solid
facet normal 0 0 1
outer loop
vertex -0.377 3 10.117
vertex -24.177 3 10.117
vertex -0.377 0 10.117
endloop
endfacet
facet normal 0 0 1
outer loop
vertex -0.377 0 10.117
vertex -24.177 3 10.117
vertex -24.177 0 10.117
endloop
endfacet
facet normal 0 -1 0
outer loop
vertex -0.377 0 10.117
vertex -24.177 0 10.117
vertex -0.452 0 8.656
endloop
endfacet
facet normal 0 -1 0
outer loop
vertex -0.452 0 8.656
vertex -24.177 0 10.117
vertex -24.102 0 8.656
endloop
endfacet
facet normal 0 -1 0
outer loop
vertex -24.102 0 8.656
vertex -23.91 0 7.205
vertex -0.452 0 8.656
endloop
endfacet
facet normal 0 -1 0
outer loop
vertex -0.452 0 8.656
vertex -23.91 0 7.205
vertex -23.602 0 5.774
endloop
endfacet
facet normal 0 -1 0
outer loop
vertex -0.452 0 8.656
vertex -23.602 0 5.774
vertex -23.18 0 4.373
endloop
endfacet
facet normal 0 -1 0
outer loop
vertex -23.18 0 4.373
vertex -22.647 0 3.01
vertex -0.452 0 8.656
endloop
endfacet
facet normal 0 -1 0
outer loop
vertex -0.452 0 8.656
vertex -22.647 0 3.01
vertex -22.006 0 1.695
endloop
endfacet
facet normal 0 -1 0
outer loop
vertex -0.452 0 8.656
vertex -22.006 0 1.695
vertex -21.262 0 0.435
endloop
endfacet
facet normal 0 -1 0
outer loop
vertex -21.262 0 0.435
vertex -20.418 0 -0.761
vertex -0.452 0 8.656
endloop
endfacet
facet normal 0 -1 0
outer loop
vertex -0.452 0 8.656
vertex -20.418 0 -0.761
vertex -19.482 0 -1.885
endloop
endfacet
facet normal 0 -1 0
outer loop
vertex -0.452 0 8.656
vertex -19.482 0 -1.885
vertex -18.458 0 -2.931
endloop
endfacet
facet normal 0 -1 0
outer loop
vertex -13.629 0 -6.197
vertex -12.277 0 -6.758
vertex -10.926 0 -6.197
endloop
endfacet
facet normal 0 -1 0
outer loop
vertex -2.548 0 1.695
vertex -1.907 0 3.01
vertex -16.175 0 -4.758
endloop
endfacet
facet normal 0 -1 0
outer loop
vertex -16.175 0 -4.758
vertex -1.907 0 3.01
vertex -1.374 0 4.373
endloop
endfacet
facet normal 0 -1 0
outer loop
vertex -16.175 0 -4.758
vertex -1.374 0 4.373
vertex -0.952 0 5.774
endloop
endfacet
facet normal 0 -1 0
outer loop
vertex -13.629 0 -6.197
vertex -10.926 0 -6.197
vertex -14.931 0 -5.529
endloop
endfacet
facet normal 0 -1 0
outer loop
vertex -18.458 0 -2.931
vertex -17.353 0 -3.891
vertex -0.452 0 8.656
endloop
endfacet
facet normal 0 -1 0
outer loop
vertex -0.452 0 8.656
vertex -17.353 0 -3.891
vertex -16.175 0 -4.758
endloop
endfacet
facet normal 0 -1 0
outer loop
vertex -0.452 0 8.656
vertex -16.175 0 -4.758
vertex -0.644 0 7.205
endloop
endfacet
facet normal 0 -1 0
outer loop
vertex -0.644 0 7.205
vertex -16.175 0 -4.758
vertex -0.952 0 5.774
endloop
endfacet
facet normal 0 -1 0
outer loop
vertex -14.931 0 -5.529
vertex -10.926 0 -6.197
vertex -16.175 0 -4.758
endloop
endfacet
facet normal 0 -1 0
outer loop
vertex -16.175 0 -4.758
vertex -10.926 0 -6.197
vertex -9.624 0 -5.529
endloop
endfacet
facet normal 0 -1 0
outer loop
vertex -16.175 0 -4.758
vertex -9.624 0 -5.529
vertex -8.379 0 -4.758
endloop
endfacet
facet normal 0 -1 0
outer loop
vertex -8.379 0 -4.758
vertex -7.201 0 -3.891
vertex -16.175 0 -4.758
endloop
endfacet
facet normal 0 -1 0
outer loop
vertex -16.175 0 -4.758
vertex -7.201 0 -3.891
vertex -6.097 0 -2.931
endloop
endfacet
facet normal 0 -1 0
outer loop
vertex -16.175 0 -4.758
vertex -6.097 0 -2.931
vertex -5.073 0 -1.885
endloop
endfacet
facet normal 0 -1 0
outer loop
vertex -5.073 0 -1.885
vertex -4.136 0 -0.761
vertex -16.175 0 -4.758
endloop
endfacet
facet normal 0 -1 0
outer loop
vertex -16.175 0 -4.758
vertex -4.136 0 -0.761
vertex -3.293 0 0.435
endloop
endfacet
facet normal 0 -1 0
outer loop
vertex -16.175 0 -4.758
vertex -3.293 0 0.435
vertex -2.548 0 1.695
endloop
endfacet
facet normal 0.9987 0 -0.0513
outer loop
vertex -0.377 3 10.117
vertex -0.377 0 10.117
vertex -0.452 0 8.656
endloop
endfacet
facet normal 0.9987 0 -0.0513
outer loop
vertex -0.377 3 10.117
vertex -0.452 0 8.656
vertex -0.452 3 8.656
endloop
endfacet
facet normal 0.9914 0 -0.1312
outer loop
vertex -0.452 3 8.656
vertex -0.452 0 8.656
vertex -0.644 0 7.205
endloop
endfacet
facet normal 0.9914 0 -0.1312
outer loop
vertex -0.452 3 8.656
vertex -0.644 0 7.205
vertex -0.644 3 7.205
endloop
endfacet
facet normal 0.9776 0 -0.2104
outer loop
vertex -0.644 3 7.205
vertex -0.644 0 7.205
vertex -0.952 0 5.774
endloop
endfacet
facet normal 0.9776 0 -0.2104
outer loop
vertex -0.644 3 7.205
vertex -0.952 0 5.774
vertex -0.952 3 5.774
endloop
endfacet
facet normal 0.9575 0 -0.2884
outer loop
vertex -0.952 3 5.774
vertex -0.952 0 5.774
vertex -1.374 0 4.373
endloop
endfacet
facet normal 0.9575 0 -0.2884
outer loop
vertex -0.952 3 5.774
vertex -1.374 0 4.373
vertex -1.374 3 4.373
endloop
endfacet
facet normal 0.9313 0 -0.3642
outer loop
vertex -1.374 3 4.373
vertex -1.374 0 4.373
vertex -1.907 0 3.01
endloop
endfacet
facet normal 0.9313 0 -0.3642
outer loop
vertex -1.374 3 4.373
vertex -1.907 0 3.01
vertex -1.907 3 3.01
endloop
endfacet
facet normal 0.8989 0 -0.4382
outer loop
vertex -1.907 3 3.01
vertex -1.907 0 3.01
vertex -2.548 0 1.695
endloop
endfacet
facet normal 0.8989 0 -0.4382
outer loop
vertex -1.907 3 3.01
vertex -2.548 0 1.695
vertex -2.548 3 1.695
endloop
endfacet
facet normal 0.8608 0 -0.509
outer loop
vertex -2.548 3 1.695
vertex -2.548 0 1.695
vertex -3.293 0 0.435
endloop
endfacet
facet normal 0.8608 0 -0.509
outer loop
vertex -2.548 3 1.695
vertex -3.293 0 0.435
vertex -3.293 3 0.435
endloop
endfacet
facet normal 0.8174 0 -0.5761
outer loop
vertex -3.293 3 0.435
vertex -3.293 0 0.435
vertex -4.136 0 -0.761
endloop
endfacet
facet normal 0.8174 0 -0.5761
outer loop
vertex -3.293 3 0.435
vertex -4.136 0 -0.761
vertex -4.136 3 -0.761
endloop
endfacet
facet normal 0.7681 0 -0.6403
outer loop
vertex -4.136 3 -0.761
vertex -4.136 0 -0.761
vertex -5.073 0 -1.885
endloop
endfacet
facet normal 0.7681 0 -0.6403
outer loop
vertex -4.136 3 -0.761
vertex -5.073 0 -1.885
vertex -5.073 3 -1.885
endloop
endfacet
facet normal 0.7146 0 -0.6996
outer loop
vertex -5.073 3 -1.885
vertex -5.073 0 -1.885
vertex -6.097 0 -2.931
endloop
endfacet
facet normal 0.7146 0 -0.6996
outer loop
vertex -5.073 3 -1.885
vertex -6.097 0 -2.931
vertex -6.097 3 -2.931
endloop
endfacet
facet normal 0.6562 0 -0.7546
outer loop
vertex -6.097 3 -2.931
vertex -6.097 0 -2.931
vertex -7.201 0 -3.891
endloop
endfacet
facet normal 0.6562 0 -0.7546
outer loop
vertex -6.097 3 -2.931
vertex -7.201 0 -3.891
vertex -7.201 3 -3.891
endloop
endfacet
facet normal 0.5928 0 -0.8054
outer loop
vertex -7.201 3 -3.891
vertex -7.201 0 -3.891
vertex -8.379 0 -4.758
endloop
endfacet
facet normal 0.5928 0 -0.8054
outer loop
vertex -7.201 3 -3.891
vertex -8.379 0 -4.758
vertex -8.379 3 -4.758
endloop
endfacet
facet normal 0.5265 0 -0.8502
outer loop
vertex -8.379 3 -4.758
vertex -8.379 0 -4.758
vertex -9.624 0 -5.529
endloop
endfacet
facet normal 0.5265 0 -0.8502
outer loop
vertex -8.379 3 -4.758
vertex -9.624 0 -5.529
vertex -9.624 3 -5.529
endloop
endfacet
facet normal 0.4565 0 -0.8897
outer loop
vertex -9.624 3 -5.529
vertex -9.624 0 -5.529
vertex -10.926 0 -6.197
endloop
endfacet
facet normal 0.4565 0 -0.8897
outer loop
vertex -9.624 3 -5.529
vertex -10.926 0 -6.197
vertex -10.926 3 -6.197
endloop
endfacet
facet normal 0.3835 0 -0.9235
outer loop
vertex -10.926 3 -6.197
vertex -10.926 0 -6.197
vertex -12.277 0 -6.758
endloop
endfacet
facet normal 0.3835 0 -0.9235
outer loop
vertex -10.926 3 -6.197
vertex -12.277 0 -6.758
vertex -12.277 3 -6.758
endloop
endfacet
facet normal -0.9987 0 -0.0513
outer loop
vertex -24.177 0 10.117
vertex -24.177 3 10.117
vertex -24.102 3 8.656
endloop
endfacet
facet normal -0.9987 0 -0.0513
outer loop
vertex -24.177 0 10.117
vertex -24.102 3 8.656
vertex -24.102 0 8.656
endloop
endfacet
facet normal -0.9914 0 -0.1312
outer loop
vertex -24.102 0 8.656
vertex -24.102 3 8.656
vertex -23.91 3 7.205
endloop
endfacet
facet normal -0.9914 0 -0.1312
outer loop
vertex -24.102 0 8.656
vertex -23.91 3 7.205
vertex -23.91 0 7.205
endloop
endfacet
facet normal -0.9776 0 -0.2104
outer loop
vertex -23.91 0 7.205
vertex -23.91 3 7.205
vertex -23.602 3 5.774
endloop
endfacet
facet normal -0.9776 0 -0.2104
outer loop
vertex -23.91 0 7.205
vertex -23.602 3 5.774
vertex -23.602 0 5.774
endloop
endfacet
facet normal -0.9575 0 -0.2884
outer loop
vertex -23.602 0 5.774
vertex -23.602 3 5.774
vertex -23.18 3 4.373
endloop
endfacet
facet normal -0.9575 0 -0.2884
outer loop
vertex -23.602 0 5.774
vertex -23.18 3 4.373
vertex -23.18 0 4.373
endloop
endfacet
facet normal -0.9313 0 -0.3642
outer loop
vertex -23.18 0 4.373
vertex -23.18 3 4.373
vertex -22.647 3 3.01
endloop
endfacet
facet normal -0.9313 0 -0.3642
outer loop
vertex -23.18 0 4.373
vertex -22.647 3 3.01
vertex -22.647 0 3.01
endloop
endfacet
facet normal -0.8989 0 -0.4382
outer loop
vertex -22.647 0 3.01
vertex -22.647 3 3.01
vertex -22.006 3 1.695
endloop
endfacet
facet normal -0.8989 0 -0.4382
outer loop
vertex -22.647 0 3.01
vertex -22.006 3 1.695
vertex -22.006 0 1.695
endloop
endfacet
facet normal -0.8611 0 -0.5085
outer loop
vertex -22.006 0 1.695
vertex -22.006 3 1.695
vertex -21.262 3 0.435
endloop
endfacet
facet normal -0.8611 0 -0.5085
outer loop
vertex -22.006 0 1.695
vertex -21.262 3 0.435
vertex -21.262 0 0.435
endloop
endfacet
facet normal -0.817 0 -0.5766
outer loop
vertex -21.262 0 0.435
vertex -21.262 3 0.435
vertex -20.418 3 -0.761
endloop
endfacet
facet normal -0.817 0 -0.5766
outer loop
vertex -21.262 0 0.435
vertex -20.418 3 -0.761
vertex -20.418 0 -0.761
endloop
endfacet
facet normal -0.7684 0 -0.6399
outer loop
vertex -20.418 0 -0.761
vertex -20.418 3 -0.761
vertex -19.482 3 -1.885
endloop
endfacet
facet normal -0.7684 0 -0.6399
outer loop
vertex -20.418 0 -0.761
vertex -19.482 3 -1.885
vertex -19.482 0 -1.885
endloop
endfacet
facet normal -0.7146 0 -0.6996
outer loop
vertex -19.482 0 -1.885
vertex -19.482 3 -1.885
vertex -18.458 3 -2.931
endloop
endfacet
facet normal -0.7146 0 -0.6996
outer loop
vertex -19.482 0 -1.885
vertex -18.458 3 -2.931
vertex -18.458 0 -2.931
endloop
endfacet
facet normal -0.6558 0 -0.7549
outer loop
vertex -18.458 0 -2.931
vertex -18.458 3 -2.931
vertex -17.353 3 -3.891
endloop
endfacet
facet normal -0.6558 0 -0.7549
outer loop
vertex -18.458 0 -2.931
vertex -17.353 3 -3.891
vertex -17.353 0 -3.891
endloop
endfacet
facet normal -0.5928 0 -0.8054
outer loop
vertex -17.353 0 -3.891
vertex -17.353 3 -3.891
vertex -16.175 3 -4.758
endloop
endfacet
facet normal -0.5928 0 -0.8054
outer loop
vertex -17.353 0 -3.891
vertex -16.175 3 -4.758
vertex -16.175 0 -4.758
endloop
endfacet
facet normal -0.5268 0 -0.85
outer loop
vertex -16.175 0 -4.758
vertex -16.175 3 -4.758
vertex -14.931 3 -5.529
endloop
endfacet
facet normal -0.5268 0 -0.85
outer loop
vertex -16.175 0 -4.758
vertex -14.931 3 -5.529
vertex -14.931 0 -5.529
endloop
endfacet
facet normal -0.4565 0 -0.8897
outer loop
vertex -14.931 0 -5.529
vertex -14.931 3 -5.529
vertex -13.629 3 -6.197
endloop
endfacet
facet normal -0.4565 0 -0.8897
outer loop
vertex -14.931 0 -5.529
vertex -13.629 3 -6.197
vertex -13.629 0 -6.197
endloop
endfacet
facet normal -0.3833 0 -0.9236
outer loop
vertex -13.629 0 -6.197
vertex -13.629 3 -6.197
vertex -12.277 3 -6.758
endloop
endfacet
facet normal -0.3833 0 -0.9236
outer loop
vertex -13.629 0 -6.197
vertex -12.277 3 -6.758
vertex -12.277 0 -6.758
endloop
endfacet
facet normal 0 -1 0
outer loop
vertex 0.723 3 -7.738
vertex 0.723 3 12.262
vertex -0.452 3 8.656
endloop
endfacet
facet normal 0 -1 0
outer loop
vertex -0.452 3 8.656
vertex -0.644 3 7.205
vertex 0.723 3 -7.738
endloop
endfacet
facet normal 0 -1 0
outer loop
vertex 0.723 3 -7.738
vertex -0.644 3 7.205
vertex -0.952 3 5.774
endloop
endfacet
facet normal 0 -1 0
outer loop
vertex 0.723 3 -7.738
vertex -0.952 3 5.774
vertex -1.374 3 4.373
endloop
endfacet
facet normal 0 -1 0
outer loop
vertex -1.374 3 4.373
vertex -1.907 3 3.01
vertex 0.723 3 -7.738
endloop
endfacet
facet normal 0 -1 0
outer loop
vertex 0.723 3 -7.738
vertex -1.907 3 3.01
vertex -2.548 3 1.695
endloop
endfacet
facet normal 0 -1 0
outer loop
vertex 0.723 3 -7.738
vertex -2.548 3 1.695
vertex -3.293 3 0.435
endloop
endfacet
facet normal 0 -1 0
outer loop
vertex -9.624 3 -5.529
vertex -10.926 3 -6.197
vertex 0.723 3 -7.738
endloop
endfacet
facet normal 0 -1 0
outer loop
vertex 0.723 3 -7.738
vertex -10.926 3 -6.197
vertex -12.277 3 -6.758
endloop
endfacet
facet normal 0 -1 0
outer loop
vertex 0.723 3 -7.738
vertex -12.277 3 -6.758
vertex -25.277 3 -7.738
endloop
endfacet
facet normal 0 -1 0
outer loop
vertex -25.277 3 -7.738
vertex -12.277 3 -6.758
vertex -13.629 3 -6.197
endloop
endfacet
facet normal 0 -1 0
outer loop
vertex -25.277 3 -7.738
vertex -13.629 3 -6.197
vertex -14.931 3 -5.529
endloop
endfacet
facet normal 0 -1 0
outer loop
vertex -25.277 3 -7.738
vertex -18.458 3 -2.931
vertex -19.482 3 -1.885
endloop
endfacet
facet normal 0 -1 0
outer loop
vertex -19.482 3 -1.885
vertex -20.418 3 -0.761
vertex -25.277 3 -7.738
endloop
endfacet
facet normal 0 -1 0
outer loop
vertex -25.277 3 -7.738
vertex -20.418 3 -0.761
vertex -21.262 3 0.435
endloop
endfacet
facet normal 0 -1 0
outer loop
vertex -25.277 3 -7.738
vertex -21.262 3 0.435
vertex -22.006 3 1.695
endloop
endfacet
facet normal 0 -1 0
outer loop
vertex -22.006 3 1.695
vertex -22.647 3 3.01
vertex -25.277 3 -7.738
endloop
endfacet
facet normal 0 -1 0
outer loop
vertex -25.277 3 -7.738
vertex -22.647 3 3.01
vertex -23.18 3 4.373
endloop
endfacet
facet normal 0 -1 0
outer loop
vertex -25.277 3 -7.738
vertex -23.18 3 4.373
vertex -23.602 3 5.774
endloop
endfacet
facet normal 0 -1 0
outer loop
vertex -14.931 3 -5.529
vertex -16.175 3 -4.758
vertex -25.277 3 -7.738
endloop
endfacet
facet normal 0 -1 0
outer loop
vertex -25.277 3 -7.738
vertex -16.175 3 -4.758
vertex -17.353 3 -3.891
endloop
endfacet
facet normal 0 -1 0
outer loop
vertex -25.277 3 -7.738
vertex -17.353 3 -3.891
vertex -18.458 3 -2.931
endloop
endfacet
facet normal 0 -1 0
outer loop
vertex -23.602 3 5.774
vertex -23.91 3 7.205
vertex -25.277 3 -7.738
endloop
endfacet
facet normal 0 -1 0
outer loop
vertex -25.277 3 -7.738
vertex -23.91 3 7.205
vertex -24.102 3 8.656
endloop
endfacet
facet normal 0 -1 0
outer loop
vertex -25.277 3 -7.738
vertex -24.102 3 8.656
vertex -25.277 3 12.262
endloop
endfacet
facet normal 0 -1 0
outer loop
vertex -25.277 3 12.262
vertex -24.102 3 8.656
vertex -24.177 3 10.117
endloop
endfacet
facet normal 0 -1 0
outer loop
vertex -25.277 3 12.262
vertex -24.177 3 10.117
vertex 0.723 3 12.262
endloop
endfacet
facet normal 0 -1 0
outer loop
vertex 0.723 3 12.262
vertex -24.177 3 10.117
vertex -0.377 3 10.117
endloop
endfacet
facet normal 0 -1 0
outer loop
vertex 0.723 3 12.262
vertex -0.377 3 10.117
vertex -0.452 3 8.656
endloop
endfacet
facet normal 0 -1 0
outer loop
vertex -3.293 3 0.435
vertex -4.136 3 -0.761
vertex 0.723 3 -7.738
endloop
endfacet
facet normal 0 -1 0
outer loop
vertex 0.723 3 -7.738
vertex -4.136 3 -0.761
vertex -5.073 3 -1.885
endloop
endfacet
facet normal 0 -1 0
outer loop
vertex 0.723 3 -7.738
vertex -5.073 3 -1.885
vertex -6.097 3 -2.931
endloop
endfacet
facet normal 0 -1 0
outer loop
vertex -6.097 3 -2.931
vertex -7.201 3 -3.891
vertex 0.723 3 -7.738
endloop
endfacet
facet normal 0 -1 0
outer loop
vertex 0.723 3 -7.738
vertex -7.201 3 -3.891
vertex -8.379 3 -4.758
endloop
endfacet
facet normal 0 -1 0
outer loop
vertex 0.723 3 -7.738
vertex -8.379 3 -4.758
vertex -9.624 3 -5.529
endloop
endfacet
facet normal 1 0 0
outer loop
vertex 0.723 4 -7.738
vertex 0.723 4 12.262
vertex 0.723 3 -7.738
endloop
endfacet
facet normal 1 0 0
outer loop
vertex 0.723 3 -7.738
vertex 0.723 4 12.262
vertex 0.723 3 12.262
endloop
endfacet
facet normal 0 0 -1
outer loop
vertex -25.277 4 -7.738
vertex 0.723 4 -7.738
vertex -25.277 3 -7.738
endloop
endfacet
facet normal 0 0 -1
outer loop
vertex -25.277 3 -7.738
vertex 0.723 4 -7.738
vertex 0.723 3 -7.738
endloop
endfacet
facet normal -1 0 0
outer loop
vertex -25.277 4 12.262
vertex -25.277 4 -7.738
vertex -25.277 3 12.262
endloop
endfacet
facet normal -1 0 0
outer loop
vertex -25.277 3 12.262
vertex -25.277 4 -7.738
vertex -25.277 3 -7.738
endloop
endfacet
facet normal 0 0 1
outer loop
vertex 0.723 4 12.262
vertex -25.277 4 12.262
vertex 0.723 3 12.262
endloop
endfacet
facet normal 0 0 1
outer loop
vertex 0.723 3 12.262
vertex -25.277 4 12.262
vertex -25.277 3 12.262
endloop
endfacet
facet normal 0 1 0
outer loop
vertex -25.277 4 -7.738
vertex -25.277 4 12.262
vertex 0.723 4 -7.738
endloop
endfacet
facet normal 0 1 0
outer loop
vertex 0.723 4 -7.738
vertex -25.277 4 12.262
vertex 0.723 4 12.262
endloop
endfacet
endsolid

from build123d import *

# Parameters (mm, degrees)
SKETCH1_W           = 23.8
SKETCH1_H           = 18
BOSS_EXTRUDE1_DEPTH = 3
FILLET1_R           = 18.2
SKETCH2_W           = 26
SKETCH2_H           = 20
BOSS_EXTRUDE2_DEPTH = 1


with BuildPart() as part:
    # Sketch1 → Boss-Extrude1 (new body)
    with BuildSketch(Plane(origin=(0, 0, 0), x_dir=(1, 0, 0), z_dir=(0, 1, 0))):
        with Locations((-12.277059049, -1.117021277)):
            Rectangle(SKETCH1_W, SKETCH1_H)
    extrude(amount=BOSS_EXTRUDE1_DEPTH)

    # Fillet1
    # the kernel refuses this fillet: 18.2 mm, written as the material it takes off along each edge
    with BuildSketch(Plane(origin=(-24.177059049, -45.497252664, -7.882978723), x_dir=(1, 0, 0), z_dir=(0, 1, 0))) as fillet1_piece_1:
        with BuildLine():
            CenterArc((18.198901066, -18.2), FILLET1_R, 90, 89.370363377)
            Line((0, -18), (-0.363978021, -17.996))
            ThreePointArc((-0.363978021, -17.996), (-0.364, -9), (-0.364, 0))
            Line((-0.364, 0), (0, 0.364))
            Line((0, 0.364), (18.198901066, 0.364))
            Line((18.198901066, 0.364), (18.198901066, 0))
        make_face()
    extrude(amount=93.994505329, mode=Mode.SUBTRACT)
    with BuildSketch(Plane(origin=(-0.377059049, -45.497252664, -7.882978723), x_dir=(-1, 0, 0), z_dir=(0, 1, 0))) as fillet1_piece_2:
        with BuildLine():
            CenterArc((18.198901066, 18.2), FILLET1_R, 180.629636623, 89.370363377)
            Line((0, 18), (-0.363978021, 17.996))
            ThreePointArc((-0.363978021, 17.996), (-0.364, 9), (-0.364, 0))
            Line((-0.364, 0), (0, -0.364))
            Line((0, -0.364), (18.198901066, -0.364))
            Line((18.198901066, -0.364), (18.198901066, 0))
        make_face()
    extrude(amount=93.994505329, mode=Mode.SUBTRACT)

    # Sketch2 → Boss-Extrude2 (add)
    with BuildSketch(Plane(origin=(0, 3, 0), x_dir=(1, 0, 0), z_dir=(0, 1, 0))):
        with Locations((-12.277059049, -2.262026244)):
            Rectangle(SKETCH2_W, SKETCH2_H)
    extrude(amount=BOSS_EXTRUDE2_DEPTH)


solid = part.part
